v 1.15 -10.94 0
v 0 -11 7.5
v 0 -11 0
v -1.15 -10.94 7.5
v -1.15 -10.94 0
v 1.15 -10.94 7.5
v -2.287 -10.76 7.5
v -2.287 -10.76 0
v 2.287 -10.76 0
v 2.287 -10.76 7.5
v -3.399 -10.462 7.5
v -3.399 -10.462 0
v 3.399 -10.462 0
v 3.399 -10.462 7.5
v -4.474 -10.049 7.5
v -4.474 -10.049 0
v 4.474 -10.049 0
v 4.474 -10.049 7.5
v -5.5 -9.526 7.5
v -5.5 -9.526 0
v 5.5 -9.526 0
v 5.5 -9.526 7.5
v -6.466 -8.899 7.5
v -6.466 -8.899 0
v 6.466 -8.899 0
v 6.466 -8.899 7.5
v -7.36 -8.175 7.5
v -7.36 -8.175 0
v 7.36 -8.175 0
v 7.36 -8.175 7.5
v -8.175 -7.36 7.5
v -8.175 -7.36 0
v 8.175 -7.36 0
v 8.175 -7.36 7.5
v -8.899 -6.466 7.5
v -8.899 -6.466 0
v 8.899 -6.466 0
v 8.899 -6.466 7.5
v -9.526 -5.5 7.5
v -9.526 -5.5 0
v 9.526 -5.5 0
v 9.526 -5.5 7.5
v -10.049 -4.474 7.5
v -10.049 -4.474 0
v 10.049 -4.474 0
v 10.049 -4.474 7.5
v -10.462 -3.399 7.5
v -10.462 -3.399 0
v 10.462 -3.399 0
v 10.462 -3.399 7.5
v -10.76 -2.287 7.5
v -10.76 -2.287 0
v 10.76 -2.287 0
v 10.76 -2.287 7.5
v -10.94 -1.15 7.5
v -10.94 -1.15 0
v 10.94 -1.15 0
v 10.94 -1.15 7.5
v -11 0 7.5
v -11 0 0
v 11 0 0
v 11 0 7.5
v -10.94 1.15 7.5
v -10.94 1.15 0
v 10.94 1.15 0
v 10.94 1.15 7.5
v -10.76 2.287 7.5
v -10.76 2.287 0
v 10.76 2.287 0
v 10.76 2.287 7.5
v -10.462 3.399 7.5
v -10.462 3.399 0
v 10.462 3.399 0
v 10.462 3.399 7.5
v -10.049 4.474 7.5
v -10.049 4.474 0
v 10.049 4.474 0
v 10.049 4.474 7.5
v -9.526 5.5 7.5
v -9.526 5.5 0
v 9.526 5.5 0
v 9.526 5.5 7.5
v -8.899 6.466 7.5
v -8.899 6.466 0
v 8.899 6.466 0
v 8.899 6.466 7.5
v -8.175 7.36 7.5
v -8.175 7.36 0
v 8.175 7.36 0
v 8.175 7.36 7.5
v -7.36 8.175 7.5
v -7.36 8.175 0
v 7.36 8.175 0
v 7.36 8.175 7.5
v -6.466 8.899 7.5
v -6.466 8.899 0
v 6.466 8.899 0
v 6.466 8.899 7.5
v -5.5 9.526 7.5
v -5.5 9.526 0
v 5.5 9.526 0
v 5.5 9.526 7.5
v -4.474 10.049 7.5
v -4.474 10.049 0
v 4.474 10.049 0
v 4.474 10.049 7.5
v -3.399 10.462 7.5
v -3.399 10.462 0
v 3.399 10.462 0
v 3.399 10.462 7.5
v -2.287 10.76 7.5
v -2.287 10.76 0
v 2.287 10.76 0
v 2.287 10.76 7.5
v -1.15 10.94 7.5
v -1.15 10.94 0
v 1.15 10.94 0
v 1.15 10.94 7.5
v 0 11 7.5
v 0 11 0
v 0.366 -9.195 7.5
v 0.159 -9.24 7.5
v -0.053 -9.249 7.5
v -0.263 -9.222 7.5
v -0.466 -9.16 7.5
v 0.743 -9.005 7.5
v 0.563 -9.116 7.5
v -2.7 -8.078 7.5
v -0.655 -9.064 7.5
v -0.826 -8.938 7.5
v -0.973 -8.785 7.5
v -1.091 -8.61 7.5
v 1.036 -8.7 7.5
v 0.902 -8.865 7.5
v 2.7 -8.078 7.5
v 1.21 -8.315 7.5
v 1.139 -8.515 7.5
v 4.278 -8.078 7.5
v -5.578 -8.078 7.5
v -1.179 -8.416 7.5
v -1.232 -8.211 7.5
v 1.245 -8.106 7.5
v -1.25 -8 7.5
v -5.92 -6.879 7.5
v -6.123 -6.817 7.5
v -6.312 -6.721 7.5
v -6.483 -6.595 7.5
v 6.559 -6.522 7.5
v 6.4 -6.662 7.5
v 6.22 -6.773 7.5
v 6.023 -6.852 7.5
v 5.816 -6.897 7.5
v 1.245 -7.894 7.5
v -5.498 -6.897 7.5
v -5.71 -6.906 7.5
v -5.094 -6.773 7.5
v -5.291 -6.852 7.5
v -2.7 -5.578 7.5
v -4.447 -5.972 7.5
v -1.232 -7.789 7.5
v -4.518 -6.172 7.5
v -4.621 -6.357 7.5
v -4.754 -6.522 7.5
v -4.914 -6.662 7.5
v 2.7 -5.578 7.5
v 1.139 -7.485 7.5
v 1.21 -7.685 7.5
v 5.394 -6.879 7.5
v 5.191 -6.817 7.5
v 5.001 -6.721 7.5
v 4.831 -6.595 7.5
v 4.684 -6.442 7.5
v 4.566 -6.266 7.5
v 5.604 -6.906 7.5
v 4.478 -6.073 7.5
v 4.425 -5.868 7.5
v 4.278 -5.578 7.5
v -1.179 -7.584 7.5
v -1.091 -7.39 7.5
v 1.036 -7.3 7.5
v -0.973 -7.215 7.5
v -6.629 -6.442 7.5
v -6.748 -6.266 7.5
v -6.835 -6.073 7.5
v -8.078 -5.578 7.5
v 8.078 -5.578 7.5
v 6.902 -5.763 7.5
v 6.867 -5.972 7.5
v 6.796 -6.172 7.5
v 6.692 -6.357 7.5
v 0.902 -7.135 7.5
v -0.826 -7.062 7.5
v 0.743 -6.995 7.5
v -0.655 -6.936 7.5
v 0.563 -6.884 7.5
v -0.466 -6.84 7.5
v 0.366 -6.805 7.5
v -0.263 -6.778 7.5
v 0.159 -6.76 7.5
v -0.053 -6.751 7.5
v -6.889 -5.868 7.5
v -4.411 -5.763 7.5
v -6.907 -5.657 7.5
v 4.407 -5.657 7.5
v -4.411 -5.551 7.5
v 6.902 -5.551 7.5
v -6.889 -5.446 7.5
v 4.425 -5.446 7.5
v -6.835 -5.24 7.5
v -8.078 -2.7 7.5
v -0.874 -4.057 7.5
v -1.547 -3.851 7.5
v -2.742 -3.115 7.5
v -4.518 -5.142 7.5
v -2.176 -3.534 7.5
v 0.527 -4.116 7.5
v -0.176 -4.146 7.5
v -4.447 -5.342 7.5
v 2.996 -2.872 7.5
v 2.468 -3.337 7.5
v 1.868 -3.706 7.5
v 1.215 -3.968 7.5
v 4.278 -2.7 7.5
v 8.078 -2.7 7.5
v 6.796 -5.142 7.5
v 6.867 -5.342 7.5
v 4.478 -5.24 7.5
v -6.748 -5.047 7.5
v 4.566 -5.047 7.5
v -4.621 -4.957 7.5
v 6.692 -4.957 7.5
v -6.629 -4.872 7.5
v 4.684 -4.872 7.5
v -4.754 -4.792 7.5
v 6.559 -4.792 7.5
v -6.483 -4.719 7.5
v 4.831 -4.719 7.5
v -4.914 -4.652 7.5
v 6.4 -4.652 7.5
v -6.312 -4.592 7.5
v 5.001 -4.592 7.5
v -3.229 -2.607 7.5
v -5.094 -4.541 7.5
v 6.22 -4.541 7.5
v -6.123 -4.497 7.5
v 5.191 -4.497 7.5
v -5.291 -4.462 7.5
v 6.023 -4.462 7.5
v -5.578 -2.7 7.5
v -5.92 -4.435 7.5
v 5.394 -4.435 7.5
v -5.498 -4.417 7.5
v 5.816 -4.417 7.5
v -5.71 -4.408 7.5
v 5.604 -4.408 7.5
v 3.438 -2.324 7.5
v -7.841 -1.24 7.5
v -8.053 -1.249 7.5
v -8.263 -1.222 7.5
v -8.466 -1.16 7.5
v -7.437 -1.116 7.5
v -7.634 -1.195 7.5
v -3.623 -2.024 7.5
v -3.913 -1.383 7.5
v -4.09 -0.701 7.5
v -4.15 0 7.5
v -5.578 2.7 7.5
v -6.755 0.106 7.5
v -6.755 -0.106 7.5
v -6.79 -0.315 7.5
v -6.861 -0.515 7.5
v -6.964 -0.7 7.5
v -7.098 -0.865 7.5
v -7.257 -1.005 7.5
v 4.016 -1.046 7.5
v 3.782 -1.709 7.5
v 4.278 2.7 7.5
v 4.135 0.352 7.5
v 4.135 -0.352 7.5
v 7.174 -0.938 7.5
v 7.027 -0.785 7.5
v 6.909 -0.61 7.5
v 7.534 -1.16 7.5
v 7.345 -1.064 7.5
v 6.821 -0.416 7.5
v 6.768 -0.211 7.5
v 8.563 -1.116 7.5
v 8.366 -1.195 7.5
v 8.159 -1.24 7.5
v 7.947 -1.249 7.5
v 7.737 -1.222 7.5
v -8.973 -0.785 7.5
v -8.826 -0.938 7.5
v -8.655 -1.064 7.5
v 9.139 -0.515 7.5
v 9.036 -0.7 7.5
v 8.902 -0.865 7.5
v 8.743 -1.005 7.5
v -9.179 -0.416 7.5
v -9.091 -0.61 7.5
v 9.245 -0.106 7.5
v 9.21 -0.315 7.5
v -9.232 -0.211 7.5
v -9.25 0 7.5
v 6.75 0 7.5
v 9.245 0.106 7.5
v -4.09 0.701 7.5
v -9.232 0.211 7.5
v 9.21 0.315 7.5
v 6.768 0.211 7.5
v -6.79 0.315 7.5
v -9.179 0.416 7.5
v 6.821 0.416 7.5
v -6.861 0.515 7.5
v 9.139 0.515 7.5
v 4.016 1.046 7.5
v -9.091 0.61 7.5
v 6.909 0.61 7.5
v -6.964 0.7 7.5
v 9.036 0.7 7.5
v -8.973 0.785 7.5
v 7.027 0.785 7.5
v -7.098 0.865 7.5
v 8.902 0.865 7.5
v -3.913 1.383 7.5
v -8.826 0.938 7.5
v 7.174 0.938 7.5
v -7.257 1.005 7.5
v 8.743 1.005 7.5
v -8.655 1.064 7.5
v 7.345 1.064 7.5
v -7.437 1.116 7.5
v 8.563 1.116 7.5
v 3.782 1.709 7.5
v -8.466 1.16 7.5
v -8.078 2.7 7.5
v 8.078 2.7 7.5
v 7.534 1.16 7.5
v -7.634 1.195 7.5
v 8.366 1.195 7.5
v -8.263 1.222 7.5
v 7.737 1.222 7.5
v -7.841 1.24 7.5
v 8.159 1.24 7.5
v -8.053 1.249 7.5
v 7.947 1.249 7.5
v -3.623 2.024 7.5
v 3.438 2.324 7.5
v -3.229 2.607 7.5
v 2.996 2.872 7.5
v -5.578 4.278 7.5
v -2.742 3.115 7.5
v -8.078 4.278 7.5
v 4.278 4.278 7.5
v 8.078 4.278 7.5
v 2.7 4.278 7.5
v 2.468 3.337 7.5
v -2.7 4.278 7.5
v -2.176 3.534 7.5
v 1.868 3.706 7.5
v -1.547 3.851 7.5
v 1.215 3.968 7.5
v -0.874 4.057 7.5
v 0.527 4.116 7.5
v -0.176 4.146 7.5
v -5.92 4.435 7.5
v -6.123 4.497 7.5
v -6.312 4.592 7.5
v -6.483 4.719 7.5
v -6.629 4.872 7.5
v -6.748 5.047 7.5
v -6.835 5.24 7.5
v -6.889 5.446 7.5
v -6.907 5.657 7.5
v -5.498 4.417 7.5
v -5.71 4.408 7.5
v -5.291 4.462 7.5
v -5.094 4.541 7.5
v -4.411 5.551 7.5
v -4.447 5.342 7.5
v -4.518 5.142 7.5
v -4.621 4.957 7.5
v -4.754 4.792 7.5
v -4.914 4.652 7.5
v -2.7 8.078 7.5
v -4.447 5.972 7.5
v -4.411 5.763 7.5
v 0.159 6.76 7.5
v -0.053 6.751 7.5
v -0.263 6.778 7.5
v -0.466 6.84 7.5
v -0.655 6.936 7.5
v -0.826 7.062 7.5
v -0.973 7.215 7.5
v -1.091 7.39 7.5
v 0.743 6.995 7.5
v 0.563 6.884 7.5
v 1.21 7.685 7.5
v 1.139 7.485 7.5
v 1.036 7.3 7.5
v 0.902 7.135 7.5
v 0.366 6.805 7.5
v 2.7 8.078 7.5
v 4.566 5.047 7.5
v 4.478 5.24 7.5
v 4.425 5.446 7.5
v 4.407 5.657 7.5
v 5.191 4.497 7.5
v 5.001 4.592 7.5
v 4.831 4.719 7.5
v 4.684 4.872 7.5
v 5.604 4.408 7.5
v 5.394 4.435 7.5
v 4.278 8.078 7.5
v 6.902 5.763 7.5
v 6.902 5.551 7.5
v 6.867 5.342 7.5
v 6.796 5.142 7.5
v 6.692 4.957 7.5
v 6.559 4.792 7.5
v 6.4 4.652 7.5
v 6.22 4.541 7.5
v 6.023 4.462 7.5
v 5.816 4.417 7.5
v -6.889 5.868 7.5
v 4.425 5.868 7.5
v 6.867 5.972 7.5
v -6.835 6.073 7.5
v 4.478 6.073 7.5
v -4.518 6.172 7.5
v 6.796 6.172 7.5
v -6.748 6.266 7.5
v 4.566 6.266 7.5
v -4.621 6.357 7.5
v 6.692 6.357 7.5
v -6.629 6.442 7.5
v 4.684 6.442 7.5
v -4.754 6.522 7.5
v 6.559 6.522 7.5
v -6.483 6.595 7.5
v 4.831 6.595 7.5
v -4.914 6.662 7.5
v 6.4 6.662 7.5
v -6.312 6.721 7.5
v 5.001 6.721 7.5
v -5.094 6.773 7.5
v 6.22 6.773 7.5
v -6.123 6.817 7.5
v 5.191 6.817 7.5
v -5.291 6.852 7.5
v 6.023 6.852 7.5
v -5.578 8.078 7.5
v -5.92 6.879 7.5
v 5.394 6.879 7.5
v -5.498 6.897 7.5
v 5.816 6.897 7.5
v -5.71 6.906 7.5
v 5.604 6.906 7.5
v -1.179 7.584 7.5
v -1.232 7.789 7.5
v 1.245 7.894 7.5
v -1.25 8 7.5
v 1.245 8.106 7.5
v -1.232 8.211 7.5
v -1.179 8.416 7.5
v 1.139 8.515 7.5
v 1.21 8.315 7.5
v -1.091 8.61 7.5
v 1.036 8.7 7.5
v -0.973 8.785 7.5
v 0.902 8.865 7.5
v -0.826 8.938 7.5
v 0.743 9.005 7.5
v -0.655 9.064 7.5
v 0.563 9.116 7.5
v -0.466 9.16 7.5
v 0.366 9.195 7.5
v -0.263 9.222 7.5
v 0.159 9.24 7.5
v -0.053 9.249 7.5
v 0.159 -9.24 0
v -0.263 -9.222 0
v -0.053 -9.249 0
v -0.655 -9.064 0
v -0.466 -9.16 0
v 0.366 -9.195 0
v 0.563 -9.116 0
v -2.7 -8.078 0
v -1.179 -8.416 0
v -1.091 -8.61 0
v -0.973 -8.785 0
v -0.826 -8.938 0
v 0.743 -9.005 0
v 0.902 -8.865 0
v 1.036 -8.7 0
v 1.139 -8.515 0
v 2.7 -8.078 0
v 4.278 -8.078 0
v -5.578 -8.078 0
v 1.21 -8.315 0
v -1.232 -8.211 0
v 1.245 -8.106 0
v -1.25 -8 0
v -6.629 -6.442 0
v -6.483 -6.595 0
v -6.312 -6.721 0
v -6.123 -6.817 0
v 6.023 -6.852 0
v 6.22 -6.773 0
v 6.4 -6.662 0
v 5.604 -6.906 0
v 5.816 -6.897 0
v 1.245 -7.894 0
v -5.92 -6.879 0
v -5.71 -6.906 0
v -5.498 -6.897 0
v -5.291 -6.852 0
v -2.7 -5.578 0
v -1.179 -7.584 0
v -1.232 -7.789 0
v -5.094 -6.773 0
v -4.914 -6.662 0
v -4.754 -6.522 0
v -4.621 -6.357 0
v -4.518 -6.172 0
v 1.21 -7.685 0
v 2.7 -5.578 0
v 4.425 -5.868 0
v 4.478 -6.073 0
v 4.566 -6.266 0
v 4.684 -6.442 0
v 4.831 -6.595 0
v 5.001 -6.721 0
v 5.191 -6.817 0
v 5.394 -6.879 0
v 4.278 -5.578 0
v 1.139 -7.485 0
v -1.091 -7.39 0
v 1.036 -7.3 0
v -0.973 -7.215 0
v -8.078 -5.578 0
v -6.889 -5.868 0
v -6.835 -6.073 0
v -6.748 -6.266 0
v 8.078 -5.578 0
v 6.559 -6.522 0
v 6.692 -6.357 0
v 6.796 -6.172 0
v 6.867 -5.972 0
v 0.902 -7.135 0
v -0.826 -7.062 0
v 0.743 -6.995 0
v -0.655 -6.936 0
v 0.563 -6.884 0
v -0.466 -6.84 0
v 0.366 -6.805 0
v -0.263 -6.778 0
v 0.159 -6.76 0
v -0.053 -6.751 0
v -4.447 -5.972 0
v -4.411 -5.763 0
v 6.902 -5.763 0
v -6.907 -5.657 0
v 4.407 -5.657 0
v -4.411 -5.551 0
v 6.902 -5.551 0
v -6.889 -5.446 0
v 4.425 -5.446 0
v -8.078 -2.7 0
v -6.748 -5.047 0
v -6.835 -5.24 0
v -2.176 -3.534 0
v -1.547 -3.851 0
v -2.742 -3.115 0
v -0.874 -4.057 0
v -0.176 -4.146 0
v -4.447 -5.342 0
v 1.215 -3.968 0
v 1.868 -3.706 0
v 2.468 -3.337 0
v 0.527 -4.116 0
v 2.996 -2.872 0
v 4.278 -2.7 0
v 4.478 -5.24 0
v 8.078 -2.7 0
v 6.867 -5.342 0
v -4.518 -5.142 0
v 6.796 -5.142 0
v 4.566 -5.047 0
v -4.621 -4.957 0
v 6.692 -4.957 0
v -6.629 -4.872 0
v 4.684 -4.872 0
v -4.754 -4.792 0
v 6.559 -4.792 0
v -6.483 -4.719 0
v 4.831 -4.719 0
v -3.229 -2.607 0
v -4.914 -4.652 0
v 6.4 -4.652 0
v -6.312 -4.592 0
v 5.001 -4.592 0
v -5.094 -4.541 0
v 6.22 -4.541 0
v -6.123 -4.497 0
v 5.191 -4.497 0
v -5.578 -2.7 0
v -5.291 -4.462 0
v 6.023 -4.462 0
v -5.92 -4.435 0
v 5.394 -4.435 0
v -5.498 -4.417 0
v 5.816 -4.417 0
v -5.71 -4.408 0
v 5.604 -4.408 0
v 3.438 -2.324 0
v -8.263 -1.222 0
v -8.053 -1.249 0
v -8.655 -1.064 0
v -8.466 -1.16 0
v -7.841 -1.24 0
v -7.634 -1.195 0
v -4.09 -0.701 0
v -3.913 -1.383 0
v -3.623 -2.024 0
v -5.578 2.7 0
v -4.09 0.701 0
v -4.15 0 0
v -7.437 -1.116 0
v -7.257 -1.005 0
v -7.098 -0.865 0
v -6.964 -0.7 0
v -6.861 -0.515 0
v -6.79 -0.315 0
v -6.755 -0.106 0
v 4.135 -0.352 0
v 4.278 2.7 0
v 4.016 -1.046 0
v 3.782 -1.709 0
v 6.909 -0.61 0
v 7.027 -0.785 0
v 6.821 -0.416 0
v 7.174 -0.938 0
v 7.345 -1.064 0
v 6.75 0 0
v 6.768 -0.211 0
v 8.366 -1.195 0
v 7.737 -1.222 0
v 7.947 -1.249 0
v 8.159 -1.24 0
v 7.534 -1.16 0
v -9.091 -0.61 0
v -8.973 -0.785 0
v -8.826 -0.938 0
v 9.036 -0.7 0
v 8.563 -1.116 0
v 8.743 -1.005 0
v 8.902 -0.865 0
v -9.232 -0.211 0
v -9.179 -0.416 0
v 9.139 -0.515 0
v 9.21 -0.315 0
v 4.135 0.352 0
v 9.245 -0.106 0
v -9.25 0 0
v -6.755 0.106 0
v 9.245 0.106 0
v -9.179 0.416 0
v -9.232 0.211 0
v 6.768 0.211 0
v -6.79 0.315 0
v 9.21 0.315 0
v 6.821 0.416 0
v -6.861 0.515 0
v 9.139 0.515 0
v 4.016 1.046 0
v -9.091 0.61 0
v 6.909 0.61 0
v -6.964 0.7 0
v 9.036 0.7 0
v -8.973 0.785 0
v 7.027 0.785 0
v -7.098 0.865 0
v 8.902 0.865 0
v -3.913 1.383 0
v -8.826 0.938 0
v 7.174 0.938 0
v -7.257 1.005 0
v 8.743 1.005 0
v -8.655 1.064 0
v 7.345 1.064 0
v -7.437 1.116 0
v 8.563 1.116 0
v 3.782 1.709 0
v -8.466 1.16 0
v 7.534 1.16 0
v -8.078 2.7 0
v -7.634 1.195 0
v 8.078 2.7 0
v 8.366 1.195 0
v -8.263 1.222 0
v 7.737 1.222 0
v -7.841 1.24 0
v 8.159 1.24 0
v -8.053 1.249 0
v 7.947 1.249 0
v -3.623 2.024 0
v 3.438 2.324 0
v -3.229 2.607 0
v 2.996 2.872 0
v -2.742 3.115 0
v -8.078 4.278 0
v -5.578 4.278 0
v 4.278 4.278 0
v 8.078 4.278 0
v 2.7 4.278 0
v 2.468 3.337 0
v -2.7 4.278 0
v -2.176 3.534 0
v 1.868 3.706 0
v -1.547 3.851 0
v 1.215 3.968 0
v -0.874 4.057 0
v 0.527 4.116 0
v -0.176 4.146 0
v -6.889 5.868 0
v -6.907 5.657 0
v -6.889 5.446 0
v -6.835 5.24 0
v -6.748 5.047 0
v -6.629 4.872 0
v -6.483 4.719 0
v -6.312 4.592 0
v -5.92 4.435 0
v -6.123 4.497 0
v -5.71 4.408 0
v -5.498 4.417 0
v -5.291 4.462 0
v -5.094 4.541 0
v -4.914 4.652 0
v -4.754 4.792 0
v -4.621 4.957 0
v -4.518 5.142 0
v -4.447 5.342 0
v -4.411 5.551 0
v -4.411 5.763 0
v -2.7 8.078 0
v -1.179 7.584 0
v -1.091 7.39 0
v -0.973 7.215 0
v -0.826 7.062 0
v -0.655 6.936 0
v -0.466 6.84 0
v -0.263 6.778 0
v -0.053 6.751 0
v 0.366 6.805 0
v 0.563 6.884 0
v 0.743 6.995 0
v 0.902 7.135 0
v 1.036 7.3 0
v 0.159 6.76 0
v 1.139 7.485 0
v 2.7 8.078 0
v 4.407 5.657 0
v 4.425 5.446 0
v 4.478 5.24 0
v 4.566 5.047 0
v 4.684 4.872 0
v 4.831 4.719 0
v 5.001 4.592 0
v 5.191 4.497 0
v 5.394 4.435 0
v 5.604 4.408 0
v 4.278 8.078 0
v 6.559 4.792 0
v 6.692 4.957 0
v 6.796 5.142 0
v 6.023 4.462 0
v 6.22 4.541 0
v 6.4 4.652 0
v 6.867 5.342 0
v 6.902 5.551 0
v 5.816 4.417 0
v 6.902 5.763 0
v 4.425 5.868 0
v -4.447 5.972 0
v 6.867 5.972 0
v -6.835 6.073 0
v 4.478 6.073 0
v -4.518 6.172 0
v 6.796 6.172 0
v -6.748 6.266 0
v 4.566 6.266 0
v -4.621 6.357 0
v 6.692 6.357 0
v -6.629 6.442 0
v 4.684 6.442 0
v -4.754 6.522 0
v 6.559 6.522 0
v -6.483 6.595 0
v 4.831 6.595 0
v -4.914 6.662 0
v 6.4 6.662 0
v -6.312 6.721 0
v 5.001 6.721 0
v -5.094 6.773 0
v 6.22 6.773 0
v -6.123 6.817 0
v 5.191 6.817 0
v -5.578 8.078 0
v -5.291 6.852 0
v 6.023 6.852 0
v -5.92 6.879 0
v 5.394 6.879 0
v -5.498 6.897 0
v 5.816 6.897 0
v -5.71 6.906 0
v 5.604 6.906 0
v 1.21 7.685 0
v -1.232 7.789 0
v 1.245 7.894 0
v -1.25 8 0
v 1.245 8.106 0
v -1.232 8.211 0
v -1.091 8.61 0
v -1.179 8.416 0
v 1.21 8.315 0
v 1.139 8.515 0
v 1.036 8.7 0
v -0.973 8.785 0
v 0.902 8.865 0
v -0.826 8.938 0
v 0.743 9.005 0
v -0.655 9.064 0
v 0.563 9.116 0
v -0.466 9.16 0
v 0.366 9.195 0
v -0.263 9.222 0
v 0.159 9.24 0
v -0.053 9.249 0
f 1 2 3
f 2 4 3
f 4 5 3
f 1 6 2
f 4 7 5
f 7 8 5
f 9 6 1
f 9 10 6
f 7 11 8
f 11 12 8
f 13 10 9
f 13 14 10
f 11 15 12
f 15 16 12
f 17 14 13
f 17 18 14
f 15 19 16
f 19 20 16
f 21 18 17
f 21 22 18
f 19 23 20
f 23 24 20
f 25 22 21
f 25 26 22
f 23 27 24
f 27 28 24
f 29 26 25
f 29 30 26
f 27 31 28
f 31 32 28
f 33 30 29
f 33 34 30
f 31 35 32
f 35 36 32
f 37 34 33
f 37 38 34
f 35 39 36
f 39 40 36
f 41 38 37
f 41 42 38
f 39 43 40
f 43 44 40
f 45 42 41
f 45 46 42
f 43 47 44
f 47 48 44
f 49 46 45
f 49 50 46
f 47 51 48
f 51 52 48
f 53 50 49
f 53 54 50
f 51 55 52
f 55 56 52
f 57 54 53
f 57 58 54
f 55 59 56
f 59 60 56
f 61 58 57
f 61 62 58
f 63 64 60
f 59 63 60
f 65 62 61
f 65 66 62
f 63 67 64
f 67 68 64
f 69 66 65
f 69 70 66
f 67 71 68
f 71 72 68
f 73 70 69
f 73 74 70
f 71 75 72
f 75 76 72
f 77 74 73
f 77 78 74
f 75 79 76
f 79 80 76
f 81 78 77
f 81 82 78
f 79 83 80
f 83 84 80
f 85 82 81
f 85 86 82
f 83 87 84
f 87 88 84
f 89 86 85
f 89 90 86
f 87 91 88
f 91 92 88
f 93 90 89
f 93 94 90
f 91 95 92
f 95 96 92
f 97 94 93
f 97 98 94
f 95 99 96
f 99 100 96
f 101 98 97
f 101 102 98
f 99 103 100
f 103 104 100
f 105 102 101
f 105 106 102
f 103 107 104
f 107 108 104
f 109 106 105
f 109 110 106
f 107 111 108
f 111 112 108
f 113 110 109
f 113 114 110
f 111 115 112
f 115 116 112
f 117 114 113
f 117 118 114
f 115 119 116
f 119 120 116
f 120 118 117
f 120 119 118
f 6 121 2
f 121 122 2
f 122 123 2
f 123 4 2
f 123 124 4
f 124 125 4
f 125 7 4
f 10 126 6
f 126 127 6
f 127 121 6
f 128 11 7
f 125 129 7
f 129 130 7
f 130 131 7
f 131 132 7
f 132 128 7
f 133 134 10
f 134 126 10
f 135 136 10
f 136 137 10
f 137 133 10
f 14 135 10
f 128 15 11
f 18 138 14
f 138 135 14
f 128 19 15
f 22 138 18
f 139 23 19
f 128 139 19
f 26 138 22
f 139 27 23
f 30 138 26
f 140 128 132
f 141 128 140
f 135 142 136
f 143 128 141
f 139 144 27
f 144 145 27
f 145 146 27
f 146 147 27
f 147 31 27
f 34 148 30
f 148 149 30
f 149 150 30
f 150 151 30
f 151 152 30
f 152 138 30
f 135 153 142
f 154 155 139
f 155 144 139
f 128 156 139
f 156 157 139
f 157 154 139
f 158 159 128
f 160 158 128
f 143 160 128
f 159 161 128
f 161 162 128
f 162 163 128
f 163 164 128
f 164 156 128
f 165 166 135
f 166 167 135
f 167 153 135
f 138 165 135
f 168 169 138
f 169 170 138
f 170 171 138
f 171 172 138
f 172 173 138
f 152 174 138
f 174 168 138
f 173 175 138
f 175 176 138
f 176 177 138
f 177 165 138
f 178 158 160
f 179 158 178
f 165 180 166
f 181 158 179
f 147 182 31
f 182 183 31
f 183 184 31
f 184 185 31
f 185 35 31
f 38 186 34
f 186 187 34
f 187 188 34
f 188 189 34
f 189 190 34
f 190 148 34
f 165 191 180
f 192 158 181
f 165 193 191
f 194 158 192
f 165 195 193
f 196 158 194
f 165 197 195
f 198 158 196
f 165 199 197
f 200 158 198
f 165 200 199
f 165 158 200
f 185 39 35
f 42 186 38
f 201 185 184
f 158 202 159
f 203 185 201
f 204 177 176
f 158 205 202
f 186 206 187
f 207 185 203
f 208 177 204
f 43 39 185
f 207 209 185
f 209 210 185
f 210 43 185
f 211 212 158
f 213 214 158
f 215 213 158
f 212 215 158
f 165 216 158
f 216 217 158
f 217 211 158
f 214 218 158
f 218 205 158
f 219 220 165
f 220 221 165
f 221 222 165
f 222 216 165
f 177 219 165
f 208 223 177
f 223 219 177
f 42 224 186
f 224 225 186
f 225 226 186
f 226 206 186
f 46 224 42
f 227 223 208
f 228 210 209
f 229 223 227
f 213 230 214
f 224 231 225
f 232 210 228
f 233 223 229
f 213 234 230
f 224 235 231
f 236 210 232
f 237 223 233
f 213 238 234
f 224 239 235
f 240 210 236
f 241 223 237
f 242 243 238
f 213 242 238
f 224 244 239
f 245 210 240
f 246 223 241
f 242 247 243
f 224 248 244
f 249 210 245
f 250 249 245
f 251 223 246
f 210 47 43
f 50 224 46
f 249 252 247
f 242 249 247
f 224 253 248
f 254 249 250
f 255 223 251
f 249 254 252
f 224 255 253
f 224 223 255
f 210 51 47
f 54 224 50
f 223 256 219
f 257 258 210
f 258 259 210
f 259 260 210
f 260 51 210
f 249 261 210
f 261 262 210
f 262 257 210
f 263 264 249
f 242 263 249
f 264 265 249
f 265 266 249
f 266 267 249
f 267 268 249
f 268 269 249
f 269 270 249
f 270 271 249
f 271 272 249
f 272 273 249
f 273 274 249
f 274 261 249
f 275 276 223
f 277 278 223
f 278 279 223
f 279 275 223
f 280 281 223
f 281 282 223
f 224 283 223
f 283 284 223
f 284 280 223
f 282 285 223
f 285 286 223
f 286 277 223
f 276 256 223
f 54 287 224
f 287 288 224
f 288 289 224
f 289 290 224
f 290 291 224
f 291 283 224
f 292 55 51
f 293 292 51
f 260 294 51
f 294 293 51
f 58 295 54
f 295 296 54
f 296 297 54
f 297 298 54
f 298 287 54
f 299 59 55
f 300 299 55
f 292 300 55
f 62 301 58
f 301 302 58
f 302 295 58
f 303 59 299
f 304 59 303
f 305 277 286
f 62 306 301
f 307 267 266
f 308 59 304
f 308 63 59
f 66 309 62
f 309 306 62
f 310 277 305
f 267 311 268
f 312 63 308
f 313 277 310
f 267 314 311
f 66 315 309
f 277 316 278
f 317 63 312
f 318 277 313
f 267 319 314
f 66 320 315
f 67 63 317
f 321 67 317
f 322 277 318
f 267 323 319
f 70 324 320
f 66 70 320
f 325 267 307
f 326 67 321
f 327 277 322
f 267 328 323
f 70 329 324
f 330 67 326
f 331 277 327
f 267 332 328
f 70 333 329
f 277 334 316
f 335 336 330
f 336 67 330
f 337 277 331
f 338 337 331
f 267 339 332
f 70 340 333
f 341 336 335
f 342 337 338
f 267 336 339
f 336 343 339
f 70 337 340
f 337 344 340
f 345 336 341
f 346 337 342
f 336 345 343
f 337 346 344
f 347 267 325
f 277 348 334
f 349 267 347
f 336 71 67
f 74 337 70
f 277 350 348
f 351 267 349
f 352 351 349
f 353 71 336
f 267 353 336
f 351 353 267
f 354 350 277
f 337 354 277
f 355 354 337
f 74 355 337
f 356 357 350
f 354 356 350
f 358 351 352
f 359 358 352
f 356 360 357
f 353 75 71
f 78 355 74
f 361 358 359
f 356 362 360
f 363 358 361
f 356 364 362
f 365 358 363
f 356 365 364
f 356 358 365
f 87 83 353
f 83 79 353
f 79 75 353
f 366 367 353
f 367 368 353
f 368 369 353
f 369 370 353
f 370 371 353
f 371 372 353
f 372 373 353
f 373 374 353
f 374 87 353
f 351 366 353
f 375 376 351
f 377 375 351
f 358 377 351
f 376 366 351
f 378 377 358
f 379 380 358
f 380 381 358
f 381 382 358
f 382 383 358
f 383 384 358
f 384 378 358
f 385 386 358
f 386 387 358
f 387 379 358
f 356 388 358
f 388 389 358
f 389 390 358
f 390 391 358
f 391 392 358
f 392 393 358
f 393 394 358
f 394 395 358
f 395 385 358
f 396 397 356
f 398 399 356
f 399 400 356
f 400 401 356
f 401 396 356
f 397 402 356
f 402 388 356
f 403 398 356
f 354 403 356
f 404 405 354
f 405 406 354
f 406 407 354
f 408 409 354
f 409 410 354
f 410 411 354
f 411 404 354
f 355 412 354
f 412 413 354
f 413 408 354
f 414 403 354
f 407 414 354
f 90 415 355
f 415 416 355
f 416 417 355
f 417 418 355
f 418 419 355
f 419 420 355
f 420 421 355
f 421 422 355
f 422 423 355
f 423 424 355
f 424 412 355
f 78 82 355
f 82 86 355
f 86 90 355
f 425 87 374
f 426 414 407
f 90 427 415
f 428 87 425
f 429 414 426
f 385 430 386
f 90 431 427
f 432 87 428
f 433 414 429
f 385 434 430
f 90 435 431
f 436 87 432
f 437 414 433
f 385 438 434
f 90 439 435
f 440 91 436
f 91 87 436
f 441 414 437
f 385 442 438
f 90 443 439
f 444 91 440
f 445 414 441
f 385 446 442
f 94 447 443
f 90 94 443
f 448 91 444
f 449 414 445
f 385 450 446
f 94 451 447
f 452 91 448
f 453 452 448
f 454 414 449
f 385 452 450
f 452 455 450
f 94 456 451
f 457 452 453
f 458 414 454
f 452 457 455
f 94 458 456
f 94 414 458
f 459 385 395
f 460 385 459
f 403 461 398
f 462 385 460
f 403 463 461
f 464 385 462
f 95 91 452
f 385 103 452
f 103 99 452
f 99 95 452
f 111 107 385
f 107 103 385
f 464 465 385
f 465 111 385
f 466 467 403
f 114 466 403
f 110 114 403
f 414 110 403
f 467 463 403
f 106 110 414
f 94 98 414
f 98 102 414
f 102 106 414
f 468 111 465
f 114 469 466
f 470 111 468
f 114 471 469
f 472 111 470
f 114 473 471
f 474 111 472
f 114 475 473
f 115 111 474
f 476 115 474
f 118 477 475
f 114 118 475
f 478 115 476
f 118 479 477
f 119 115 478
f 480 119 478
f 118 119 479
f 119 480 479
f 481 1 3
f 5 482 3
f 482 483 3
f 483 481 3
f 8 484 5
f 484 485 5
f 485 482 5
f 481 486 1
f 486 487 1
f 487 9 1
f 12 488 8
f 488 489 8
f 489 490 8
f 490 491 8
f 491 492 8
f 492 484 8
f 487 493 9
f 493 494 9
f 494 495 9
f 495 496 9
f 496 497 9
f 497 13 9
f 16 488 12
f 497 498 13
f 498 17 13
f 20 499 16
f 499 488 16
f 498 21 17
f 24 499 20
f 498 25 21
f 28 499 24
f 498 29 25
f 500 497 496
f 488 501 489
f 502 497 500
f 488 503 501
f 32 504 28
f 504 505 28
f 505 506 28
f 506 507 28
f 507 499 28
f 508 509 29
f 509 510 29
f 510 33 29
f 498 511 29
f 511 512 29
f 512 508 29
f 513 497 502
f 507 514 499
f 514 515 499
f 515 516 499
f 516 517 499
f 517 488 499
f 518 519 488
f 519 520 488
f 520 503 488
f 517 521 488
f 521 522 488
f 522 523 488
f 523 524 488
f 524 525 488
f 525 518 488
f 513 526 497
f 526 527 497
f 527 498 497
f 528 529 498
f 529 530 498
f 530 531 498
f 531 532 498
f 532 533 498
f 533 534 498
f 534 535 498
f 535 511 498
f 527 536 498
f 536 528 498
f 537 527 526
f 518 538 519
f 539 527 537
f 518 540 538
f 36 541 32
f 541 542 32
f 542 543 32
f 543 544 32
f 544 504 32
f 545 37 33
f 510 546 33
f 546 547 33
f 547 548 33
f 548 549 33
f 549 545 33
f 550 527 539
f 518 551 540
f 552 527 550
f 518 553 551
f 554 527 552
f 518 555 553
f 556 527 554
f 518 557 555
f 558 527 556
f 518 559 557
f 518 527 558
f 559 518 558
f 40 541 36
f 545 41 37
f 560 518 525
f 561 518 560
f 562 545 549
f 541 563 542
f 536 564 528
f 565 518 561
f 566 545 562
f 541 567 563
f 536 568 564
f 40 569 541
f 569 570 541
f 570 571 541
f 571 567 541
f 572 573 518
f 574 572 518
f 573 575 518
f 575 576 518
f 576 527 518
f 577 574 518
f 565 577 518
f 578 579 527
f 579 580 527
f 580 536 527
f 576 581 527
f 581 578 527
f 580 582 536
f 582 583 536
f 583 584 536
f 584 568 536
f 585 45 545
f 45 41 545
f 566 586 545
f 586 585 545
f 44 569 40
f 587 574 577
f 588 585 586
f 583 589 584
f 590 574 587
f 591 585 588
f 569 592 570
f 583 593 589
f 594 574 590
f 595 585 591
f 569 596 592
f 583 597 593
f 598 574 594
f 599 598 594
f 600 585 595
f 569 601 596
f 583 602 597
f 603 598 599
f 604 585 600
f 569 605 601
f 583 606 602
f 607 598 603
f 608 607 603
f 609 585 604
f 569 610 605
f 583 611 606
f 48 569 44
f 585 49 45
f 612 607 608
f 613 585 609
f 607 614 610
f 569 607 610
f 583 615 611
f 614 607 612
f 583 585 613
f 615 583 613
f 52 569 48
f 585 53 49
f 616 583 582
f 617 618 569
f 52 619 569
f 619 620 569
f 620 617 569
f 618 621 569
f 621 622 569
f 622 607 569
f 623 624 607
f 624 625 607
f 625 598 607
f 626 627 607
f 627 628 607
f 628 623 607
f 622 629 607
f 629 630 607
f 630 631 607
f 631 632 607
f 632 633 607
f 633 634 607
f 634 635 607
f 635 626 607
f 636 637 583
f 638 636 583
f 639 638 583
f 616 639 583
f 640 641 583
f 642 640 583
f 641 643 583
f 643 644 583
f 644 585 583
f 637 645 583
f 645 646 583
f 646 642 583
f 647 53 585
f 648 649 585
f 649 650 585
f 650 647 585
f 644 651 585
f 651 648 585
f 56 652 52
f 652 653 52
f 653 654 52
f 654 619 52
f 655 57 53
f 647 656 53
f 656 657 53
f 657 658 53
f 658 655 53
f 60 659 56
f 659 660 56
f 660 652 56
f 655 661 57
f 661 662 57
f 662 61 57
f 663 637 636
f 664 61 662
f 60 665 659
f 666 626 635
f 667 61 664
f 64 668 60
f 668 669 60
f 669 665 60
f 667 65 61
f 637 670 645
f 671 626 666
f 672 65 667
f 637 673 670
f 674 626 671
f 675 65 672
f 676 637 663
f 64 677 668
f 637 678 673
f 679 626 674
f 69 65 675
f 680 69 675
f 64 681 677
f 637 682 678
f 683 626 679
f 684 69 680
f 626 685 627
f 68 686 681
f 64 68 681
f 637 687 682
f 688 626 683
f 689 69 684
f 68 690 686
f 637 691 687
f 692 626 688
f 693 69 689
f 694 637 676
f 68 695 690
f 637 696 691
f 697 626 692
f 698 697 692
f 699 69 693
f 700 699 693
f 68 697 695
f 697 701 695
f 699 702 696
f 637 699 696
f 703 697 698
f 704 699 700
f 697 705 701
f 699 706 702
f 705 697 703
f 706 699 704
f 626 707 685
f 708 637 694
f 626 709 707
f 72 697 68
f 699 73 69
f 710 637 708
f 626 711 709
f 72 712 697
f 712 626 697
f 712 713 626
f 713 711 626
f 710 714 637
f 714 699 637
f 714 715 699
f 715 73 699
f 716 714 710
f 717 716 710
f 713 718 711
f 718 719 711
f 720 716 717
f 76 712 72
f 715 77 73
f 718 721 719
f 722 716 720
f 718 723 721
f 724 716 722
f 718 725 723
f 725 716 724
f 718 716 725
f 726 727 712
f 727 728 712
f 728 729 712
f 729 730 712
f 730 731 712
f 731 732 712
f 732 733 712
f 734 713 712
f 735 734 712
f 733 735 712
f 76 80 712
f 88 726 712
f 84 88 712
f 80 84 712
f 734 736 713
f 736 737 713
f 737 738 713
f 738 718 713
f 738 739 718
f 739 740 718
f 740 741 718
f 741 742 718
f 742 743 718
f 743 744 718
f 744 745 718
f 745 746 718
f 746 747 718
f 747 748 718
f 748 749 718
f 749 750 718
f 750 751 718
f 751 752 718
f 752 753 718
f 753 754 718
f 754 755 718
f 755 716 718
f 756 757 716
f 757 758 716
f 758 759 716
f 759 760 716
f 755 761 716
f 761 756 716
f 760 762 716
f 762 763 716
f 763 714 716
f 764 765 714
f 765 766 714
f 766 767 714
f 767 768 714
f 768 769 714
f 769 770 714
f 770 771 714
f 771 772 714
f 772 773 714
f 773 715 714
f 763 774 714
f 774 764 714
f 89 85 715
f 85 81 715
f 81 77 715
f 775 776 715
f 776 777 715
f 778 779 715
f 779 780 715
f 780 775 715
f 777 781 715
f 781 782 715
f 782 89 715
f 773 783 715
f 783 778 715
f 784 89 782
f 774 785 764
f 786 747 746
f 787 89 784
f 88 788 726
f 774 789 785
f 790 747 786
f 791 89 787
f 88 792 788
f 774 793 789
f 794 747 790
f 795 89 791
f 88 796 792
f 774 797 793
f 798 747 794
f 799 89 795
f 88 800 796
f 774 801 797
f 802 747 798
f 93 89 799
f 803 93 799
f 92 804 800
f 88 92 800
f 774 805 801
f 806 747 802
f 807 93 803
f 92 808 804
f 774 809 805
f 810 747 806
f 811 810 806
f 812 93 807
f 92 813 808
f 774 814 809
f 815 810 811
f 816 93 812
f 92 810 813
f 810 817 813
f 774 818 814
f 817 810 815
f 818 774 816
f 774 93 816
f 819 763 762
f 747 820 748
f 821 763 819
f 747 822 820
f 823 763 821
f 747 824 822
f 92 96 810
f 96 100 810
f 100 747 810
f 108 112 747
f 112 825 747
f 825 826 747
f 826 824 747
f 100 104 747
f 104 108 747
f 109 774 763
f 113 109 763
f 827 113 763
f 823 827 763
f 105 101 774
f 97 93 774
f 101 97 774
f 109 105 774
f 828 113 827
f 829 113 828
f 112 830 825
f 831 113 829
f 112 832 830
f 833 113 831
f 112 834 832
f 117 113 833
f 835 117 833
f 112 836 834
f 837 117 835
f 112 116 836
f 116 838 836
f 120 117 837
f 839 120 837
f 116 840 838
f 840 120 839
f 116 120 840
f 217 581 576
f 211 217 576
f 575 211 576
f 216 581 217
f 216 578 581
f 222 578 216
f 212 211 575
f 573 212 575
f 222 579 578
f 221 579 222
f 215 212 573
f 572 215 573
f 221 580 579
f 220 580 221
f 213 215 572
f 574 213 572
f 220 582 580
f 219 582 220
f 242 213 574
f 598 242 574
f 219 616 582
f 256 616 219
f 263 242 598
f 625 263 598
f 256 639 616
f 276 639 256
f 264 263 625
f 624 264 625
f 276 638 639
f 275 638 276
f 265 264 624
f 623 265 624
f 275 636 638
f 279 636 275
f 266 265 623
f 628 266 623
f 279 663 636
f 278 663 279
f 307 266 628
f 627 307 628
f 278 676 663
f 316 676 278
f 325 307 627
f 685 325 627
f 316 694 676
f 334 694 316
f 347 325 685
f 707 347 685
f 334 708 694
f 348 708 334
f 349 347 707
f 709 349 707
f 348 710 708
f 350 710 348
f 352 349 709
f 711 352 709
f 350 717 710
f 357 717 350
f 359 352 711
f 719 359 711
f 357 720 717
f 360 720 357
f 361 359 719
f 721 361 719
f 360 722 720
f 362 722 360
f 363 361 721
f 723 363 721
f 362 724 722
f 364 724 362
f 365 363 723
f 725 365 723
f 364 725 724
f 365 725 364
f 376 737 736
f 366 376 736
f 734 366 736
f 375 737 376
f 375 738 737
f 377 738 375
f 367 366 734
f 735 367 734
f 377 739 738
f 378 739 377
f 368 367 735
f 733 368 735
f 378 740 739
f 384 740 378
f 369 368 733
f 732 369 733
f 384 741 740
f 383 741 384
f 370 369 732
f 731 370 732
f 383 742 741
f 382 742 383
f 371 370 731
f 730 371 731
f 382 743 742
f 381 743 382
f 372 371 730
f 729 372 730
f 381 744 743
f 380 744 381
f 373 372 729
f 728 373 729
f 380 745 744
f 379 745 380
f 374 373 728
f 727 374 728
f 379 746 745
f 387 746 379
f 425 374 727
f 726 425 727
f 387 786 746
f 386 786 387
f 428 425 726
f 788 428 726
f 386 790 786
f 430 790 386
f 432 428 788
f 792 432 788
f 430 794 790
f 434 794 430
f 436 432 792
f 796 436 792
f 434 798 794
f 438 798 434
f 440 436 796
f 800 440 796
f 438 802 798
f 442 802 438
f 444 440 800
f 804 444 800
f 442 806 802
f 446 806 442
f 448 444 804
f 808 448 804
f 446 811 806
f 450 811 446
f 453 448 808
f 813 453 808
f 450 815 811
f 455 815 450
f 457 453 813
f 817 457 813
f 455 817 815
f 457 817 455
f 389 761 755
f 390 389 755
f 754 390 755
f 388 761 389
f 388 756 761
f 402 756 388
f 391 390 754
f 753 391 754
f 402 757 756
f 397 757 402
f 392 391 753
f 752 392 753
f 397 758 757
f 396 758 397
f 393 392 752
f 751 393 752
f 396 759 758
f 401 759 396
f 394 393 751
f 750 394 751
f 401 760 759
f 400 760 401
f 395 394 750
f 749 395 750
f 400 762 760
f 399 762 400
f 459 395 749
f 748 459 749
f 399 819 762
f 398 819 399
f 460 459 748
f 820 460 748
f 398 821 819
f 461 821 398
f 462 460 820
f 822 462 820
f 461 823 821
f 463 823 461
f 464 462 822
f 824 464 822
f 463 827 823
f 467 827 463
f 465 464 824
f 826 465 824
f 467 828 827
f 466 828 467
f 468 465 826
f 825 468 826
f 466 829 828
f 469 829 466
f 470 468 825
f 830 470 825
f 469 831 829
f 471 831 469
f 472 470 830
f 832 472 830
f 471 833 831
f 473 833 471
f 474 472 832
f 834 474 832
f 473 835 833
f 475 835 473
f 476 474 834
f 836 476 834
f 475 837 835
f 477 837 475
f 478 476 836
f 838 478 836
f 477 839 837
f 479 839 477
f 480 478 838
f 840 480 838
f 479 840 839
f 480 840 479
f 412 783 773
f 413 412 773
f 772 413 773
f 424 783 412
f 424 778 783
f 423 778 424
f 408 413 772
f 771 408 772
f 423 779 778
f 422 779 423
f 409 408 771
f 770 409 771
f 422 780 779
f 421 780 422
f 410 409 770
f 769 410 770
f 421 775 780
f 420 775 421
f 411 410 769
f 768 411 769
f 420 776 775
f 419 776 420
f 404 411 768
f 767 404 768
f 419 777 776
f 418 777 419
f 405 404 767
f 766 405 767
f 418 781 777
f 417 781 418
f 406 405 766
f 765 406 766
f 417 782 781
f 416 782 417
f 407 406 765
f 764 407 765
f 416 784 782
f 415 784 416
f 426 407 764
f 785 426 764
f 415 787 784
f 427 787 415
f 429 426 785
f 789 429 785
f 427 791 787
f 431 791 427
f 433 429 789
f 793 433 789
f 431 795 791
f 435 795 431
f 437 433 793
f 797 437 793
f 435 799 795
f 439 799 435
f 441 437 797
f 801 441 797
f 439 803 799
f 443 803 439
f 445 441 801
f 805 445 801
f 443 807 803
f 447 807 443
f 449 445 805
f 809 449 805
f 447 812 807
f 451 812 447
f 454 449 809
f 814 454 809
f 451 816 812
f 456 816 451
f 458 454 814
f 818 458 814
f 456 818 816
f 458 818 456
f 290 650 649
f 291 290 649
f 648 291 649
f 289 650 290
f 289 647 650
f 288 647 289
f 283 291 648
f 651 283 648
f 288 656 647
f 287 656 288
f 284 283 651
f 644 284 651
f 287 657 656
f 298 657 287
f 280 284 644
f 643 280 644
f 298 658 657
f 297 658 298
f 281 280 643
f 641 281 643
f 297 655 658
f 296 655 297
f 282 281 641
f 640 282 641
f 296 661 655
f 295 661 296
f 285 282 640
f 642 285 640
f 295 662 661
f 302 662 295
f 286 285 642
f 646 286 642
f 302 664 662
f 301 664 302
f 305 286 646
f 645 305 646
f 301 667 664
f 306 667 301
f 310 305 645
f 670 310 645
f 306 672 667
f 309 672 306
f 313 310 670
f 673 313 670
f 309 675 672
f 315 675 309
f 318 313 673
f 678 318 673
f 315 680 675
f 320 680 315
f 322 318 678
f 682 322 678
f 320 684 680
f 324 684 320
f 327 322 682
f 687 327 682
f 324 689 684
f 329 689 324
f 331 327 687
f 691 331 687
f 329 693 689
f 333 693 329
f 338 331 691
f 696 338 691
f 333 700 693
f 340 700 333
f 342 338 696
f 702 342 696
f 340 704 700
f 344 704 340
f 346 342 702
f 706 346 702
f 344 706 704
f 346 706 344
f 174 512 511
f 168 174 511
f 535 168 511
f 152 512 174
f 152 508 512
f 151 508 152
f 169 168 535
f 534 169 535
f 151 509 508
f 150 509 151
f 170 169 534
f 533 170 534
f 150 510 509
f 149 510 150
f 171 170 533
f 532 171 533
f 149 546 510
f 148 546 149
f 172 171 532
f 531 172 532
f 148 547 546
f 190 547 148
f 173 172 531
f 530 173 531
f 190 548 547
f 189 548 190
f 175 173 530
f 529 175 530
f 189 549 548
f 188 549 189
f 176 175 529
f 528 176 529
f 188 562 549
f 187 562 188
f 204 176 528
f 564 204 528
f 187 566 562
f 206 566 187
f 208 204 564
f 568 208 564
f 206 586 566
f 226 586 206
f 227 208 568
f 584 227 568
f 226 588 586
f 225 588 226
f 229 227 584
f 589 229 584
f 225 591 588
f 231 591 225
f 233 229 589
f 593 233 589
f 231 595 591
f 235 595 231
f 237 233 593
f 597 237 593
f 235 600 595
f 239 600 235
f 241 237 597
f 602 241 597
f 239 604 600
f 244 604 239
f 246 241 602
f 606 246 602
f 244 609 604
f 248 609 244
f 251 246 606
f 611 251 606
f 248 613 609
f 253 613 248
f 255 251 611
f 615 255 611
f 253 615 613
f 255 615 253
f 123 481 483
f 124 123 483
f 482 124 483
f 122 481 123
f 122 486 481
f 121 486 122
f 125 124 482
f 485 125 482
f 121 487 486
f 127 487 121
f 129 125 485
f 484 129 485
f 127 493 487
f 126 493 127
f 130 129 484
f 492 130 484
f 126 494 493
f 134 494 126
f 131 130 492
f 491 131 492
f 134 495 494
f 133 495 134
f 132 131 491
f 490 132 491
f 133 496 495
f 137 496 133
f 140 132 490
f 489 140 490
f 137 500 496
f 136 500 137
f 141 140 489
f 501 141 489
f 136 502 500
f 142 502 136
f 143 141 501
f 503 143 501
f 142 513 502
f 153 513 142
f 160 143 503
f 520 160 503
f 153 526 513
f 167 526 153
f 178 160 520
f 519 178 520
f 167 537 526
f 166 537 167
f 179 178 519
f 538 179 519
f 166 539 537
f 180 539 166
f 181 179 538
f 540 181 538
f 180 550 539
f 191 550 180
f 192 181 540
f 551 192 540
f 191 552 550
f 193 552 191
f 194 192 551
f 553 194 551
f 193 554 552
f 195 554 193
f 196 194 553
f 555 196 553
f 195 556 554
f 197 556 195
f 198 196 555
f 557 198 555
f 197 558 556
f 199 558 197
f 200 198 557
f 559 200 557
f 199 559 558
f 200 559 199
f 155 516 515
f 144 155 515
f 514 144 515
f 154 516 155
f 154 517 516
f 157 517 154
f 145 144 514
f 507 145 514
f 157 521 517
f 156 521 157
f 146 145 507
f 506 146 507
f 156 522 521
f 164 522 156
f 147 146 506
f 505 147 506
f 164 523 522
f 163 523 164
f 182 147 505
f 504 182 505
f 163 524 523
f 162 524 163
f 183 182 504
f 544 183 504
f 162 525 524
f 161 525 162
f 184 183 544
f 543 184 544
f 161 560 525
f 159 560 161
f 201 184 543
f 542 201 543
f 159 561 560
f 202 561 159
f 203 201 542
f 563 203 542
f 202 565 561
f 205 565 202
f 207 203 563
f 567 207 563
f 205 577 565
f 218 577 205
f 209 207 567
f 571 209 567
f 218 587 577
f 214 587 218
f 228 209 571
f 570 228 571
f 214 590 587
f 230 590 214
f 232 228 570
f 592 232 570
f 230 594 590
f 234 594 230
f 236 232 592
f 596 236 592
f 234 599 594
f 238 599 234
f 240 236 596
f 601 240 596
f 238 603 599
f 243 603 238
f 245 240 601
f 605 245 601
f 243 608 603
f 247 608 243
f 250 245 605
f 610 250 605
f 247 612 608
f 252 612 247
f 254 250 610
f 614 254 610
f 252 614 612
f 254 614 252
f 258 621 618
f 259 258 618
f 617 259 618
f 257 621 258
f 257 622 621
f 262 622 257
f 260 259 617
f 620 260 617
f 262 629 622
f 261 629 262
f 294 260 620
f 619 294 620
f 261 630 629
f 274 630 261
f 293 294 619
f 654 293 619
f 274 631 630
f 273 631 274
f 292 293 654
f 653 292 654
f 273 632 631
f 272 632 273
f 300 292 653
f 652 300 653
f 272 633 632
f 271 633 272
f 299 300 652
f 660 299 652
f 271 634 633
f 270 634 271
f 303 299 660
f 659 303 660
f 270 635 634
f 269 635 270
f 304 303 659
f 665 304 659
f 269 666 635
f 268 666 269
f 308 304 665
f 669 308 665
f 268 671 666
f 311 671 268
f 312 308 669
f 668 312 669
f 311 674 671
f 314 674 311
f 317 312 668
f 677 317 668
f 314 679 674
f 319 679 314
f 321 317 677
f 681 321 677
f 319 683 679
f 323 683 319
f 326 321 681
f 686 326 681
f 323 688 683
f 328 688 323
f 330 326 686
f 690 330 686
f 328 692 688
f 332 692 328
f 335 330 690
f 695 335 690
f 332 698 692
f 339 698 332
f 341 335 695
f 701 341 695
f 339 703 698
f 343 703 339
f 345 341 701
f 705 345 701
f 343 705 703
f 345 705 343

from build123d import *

# Parameters (mm, degrees)
SKETCH2_R           = 11
BOSS_EXTRUDE1_DEPTH = 7.5
SKETCH3_R           = 4.15
SKETCH3_R_2         = 1.25
CUT_EXTRUDE1_DEPTH  = 8.5


with BuildPart() as part:
    # Sketch2 → Boss-Extrude1 (new body)
    with BuildSketch(Plane.XY):
        Circle(SKETCH2_R)
    extrude(amount=BOSS_EXTRUDE1_DEPTH)

    # Sketch3 → Cut-Extrude1 (cut, through all)
    with BuildSketch(Plane(origin=(0, 0, 0), x_dir=(-1, 0, 0), z_dir=(0, 0, -1))):
        Circle(SKETCH3_R)
        with Locations((8, 0)):
            Circle(SKETCH3_R_2)
        with Locations((5.656854249, -5.656854249)):
            Circle(SKETCH3_R_2)
        with Locations((0, -8)):
            Circle(SKETCH3_R_2)
        with Locations((-5.656854249, -5.656854249)):
            Circle(SKETCH3_R_2)
        with Locations((-8, 0)):
            Circle(SKETCH3_R_2)
        with Locations((-5.656854249, 5.656854249)):
            Circle(SKETCH3_R_2)
        with Locations((0, 8)):
            Circle(SKETCH3_R_2)
        with Locations((5.656854249, 5.656854249)):
            Circle(SKETCH3_R_2)
    extrude(amount=-CUT_EXTRUDE1_DEPTH, mode=Mode.SUBTRACT)


solid = part.part
